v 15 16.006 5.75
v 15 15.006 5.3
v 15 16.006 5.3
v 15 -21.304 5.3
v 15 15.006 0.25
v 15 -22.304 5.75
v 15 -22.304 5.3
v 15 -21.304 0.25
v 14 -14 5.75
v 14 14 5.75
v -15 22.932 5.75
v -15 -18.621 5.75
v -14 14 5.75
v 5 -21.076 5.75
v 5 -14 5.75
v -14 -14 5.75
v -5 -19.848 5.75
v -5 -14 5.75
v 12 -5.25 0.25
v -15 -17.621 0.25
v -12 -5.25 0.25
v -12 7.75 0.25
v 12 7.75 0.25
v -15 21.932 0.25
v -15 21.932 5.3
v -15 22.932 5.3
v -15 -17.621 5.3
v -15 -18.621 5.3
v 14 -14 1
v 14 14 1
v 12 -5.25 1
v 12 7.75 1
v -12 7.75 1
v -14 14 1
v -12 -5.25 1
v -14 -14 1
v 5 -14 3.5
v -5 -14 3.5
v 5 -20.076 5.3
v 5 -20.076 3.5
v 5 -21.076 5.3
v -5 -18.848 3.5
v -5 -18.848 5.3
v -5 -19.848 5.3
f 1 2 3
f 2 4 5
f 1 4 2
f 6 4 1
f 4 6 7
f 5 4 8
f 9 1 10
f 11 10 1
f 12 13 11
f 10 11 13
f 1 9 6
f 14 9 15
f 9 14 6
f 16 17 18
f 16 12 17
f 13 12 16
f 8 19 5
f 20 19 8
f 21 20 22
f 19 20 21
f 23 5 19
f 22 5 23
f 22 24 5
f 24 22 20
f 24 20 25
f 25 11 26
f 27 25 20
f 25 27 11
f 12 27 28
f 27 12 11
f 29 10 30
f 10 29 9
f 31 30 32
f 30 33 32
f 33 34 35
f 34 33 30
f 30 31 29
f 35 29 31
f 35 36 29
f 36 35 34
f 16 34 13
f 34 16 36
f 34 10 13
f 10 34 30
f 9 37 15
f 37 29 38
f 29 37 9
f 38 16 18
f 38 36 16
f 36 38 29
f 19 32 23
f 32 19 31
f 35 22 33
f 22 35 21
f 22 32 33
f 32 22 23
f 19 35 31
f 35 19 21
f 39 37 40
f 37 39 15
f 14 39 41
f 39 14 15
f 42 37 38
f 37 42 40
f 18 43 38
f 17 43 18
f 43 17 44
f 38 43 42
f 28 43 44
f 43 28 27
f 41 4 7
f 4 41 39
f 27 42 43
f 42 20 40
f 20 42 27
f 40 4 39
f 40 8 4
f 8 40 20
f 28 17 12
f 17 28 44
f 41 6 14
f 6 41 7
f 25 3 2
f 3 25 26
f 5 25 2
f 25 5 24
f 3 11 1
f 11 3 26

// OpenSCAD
// Dimensions in mm

difference(){  
      
// main block    
translate([0,0,3])
    cube([30,48,5.5],true);

// pcb
translate([0,0,3.5])
    cube([28,28,5],true);

// screen
translate([0,1.25,2])
    cube([24,13,5],true);
    
// cable
translate([0,-14,6])
    cube([10,15,5],true);
    
// support bottom
translate([0,-24.5,2.3])
rotate([0,0,-7])
    cube([36,10,6],true);

// lip bottom
translate([0,-25.5,3])
rotate([0,0,-7])
    cube([36,10,6],true);

// support top
translate([0,23.6,2.3])
rotate([0,0,-13])
    cube([36,10,6],true);
    
// lip top 
translate([0,24.6,3])
rotate([0,0,-13])
    cube([36,10,6],true);    
}
